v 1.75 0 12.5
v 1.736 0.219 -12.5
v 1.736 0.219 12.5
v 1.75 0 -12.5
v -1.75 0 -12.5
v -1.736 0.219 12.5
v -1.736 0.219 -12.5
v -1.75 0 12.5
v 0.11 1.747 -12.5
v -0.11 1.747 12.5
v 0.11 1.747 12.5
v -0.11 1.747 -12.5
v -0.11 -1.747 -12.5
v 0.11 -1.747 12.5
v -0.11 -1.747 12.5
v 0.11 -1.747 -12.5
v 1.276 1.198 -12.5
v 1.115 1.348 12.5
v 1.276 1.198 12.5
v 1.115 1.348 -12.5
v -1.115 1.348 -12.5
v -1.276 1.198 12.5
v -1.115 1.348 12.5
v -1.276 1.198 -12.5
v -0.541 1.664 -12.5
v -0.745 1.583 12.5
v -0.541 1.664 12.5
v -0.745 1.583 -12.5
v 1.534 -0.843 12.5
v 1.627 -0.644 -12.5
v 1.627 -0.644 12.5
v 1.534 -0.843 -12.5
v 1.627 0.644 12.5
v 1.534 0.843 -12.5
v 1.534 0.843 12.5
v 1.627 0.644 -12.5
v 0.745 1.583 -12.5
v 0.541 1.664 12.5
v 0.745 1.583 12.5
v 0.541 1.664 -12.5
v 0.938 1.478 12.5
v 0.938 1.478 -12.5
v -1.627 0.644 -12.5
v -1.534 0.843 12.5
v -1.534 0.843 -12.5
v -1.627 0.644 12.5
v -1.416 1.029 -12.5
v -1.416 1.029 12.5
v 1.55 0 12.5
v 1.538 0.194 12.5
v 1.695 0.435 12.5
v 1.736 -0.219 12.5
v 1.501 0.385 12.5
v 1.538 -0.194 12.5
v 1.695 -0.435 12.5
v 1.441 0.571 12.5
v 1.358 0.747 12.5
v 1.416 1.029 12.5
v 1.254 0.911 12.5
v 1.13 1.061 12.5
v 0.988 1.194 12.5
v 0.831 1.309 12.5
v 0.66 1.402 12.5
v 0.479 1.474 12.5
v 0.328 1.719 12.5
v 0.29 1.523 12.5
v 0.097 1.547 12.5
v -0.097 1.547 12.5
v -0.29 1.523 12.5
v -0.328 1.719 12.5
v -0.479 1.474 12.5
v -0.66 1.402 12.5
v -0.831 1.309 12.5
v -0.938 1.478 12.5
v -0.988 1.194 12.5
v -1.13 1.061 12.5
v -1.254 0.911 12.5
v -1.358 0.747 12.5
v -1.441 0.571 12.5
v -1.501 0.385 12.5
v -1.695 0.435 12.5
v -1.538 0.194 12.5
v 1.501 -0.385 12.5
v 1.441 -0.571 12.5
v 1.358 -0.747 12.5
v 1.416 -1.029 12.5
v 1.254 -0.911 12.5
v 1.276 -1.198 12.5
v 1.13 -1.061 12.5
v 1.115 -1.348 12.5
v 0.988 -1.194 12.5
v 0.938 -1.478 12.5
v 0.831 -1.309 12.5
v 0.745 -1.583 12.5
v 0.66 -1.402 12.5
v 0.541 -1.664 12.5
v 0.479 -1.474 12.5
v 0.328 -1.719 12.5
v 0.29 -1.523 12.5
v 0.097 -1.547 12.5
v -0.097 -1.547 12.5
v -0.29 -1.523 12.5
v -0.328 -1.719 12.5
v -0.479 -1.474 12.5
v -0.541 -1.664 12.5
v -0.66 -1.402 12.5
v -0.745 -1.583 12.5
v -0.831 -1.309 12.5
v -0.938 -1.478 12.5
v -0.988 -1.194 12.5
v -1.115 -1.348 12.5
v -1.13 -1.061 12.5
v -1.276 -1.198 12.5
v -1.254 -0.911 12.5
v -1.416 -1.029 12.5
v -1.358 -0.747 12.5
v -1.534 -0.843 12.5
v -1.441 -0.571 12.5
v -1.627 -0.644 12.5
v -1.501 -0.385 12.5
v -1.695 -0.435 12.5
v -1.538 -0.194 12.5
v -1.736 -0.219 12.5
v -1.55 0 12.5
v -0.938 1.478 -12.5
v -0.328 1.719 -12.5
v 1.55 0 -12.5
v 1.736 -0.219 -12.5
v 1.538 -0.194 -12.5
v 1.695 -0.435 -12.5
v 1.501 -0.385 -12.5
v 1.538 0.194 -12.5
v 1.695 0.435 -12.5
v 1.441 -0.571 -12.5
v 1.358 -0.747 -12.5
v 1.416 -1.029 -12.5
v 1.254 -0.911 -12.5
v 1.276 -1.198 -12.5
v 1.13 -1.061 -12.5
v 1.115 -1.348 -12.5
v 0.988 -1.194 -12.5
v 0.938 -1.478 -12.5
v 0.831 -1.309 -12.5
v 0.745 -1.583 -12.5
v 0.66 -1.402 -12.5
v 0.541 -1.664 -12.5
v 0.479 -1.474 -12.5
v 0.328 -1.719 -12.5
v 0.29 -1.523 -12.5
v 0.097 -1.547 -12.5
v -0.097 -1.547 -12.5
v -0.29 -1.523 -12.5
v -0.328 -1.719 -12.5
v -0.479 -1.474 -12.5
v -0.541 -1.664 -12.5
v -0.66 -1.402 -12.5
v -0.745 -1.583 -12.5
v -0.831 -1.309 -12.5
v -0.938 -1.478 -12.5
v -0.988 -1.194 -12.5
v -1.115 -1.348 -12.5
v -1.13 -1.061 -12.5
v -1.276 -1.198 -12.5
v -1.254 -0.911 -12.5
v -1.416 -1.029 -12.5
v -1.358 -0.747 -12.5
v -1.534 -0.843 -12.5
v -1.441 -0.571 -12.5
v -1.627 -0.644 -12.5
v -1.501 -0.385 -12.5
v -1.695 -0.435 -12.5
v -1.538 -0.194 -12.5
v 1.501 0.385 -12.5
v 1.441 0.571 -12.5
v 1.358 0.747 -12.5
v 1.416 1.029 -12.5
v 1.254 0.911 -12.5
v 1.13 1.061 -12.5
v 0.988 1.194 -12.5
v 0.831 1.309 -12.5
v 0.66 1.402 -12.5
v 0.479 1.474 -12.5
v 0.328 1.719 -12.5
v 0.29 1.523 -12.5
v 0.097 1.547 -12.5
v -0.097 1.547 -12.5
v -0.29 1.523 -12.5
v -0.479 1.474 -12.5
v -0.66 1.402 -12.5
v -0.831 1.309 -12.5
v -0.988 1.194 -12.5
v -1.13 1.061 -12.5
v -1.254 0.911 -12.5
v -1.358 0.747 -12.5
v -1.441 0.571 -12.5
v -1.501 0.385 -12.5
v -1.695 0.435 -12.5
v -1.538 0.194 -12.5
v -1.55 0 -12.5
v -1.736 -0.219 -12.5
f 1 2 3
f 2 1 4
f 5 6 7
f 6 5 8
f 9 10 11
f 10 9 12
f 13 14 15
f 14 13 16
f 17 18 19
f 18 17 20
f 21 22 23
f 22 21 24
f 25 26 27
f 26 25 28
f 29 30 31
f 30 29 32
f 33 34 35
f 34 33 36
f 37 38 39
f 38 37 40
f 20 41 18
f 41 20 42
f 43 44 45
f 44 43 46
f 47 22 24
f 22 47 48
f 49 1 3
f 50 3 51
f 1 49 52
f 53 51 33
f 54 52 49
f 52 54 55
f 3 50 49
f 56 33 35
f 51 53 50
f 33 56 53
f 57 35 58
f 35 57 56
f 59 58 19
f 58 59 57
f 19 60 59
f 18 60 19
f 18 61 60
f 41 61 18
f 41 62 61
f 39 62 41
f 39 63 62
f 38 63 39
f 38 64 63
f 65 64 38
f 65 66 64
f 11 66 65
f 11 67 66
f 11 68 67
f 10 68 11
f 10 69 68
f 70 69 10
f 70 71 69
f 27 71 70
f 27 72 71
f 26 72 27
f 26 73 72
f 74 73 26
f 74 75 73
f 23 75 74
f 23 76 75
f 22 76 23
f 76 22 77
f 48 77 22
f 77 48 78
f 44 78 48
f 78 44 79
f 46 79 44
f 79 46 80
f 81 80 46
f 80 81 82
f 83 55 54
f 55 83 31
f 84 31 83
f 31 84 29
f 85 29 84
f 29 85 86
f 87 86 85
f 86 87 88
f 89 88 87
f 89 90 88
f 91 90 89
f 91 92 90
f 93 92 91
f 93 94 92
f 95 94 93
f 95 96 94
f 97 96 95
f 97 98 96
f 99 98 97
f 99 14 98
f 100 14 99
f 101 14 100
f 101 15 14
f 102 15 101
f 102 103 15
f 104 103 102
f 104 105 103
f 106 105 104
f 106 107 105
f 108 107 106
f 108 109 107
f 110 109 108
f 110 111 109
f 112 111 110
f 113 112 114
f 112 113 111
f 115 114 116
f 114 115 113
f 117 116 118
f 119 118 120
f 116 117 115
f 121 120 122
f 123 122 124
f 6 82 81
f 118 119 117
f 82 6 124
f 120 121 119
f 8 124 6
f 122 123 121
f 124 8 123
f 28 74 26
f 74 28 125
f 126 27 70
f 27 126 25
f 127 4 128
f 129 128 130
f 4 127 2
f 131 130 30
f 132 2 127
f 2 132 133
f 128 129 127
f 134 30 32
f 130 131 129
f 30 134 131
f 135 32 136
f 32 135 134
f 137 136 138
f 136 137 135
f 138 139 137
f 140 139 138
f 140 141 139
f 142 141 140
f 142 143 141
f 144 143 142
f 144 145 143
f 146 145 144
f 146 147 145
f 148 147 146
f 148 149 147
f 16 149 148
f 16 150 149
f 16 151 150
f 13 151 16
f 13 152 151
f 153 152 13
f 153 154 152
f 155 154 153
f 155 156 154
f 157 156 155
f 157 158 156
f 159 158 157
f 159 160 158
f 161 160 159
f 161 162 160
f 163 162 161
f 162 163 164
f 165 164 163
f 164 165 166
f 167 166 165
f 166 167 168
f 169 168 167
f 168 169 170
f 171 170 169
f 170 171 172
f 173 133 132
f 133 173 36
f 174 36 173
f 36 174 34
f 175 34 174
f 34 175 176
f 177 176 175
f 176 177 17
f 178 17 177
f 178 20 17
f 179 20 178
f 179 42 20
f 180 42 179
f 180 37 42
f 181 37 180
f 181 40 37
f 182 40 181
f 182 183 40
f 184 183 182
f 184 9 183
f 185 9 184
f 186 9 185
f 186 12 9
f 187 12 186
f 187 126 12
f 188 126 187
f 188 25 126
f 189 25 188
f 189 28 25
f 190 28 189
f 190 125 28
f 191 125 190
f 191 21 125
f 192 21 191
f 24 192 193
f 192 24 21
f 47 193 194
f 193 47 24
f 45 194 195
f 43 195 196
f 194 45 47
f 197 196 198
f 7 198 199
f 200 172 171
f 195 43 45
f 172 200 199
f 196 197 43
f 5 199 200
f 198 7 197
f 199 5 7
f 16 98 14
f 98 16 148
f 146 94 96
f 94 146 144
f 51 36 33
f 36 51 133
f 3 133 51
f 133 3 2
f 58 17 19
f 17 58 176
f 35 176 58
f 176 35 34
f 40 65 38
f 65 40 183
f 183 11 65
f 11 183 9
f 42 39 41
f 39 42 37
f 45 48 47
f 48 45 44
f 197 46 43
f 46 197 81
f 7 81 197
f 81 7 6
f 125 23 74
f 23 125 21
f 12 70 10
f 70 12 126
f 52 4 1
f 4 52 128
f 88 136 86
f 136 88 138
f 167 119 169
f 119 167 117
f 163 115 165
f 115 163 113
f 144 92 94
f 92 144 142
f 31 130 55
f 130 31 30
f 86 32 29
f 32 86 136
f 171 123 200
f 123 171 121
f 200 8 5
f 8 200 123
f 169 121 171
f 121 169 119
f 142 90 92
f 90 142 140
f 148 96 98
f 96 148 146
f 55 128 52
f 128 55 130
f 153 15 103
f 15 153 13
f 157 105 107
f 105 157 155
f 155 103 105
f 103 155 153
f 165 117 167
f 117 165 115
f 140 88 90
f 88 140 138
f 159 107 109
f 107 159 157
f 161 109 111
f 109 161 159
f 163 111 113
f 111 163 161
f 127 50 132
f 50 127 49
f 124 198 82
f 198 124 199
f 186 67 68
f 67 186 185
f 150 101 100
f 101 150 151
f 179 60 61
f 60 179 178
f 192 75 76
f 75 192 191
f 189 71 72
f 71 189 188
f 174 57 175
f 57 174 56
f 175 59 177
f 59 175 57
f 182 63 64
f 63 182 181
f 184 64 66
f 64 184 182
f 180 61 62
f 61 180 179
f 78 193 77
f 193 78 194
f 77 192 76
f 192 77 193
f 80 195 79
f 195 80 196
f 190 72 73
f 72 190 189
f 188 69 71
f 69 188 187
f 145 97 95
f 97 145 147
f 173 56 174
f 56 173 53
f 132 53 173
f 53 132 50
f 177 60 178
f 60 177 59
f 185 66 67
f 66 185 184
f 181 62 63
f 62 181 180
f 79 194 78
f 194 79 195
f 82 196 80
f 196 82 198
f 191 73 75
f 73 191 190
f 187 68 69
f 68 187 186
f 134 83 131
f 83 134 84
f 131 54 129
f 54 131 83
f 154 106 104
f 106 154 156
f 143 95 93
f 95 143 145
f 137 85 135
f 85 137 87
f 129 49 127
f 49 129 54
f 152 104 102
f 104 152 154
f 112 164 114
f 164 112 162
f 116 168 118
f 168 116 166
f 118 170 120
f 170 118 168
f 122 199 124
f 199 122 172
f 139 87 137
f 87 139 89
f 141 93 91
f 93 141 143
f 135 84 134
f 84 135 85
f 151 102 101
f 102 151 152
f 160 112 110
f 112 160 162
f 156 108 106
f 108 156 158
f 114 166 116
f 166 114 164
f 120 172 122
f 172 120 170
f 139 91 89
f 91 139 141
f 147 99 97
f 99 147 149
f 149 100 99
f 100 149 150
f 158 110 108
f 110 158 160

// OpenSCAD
$fn = 50;


difference() {
	union() {
		translate(v = [0, 0, -12.5000000000]) {
			cylinder(h = 25, r = 1.7500000000);
		}
	}
	union() {
		translate(v = [0, 0, -100.0000000000]) {
			cylinder(h = 200, r = 1.5500000000);
		}
	}
}
